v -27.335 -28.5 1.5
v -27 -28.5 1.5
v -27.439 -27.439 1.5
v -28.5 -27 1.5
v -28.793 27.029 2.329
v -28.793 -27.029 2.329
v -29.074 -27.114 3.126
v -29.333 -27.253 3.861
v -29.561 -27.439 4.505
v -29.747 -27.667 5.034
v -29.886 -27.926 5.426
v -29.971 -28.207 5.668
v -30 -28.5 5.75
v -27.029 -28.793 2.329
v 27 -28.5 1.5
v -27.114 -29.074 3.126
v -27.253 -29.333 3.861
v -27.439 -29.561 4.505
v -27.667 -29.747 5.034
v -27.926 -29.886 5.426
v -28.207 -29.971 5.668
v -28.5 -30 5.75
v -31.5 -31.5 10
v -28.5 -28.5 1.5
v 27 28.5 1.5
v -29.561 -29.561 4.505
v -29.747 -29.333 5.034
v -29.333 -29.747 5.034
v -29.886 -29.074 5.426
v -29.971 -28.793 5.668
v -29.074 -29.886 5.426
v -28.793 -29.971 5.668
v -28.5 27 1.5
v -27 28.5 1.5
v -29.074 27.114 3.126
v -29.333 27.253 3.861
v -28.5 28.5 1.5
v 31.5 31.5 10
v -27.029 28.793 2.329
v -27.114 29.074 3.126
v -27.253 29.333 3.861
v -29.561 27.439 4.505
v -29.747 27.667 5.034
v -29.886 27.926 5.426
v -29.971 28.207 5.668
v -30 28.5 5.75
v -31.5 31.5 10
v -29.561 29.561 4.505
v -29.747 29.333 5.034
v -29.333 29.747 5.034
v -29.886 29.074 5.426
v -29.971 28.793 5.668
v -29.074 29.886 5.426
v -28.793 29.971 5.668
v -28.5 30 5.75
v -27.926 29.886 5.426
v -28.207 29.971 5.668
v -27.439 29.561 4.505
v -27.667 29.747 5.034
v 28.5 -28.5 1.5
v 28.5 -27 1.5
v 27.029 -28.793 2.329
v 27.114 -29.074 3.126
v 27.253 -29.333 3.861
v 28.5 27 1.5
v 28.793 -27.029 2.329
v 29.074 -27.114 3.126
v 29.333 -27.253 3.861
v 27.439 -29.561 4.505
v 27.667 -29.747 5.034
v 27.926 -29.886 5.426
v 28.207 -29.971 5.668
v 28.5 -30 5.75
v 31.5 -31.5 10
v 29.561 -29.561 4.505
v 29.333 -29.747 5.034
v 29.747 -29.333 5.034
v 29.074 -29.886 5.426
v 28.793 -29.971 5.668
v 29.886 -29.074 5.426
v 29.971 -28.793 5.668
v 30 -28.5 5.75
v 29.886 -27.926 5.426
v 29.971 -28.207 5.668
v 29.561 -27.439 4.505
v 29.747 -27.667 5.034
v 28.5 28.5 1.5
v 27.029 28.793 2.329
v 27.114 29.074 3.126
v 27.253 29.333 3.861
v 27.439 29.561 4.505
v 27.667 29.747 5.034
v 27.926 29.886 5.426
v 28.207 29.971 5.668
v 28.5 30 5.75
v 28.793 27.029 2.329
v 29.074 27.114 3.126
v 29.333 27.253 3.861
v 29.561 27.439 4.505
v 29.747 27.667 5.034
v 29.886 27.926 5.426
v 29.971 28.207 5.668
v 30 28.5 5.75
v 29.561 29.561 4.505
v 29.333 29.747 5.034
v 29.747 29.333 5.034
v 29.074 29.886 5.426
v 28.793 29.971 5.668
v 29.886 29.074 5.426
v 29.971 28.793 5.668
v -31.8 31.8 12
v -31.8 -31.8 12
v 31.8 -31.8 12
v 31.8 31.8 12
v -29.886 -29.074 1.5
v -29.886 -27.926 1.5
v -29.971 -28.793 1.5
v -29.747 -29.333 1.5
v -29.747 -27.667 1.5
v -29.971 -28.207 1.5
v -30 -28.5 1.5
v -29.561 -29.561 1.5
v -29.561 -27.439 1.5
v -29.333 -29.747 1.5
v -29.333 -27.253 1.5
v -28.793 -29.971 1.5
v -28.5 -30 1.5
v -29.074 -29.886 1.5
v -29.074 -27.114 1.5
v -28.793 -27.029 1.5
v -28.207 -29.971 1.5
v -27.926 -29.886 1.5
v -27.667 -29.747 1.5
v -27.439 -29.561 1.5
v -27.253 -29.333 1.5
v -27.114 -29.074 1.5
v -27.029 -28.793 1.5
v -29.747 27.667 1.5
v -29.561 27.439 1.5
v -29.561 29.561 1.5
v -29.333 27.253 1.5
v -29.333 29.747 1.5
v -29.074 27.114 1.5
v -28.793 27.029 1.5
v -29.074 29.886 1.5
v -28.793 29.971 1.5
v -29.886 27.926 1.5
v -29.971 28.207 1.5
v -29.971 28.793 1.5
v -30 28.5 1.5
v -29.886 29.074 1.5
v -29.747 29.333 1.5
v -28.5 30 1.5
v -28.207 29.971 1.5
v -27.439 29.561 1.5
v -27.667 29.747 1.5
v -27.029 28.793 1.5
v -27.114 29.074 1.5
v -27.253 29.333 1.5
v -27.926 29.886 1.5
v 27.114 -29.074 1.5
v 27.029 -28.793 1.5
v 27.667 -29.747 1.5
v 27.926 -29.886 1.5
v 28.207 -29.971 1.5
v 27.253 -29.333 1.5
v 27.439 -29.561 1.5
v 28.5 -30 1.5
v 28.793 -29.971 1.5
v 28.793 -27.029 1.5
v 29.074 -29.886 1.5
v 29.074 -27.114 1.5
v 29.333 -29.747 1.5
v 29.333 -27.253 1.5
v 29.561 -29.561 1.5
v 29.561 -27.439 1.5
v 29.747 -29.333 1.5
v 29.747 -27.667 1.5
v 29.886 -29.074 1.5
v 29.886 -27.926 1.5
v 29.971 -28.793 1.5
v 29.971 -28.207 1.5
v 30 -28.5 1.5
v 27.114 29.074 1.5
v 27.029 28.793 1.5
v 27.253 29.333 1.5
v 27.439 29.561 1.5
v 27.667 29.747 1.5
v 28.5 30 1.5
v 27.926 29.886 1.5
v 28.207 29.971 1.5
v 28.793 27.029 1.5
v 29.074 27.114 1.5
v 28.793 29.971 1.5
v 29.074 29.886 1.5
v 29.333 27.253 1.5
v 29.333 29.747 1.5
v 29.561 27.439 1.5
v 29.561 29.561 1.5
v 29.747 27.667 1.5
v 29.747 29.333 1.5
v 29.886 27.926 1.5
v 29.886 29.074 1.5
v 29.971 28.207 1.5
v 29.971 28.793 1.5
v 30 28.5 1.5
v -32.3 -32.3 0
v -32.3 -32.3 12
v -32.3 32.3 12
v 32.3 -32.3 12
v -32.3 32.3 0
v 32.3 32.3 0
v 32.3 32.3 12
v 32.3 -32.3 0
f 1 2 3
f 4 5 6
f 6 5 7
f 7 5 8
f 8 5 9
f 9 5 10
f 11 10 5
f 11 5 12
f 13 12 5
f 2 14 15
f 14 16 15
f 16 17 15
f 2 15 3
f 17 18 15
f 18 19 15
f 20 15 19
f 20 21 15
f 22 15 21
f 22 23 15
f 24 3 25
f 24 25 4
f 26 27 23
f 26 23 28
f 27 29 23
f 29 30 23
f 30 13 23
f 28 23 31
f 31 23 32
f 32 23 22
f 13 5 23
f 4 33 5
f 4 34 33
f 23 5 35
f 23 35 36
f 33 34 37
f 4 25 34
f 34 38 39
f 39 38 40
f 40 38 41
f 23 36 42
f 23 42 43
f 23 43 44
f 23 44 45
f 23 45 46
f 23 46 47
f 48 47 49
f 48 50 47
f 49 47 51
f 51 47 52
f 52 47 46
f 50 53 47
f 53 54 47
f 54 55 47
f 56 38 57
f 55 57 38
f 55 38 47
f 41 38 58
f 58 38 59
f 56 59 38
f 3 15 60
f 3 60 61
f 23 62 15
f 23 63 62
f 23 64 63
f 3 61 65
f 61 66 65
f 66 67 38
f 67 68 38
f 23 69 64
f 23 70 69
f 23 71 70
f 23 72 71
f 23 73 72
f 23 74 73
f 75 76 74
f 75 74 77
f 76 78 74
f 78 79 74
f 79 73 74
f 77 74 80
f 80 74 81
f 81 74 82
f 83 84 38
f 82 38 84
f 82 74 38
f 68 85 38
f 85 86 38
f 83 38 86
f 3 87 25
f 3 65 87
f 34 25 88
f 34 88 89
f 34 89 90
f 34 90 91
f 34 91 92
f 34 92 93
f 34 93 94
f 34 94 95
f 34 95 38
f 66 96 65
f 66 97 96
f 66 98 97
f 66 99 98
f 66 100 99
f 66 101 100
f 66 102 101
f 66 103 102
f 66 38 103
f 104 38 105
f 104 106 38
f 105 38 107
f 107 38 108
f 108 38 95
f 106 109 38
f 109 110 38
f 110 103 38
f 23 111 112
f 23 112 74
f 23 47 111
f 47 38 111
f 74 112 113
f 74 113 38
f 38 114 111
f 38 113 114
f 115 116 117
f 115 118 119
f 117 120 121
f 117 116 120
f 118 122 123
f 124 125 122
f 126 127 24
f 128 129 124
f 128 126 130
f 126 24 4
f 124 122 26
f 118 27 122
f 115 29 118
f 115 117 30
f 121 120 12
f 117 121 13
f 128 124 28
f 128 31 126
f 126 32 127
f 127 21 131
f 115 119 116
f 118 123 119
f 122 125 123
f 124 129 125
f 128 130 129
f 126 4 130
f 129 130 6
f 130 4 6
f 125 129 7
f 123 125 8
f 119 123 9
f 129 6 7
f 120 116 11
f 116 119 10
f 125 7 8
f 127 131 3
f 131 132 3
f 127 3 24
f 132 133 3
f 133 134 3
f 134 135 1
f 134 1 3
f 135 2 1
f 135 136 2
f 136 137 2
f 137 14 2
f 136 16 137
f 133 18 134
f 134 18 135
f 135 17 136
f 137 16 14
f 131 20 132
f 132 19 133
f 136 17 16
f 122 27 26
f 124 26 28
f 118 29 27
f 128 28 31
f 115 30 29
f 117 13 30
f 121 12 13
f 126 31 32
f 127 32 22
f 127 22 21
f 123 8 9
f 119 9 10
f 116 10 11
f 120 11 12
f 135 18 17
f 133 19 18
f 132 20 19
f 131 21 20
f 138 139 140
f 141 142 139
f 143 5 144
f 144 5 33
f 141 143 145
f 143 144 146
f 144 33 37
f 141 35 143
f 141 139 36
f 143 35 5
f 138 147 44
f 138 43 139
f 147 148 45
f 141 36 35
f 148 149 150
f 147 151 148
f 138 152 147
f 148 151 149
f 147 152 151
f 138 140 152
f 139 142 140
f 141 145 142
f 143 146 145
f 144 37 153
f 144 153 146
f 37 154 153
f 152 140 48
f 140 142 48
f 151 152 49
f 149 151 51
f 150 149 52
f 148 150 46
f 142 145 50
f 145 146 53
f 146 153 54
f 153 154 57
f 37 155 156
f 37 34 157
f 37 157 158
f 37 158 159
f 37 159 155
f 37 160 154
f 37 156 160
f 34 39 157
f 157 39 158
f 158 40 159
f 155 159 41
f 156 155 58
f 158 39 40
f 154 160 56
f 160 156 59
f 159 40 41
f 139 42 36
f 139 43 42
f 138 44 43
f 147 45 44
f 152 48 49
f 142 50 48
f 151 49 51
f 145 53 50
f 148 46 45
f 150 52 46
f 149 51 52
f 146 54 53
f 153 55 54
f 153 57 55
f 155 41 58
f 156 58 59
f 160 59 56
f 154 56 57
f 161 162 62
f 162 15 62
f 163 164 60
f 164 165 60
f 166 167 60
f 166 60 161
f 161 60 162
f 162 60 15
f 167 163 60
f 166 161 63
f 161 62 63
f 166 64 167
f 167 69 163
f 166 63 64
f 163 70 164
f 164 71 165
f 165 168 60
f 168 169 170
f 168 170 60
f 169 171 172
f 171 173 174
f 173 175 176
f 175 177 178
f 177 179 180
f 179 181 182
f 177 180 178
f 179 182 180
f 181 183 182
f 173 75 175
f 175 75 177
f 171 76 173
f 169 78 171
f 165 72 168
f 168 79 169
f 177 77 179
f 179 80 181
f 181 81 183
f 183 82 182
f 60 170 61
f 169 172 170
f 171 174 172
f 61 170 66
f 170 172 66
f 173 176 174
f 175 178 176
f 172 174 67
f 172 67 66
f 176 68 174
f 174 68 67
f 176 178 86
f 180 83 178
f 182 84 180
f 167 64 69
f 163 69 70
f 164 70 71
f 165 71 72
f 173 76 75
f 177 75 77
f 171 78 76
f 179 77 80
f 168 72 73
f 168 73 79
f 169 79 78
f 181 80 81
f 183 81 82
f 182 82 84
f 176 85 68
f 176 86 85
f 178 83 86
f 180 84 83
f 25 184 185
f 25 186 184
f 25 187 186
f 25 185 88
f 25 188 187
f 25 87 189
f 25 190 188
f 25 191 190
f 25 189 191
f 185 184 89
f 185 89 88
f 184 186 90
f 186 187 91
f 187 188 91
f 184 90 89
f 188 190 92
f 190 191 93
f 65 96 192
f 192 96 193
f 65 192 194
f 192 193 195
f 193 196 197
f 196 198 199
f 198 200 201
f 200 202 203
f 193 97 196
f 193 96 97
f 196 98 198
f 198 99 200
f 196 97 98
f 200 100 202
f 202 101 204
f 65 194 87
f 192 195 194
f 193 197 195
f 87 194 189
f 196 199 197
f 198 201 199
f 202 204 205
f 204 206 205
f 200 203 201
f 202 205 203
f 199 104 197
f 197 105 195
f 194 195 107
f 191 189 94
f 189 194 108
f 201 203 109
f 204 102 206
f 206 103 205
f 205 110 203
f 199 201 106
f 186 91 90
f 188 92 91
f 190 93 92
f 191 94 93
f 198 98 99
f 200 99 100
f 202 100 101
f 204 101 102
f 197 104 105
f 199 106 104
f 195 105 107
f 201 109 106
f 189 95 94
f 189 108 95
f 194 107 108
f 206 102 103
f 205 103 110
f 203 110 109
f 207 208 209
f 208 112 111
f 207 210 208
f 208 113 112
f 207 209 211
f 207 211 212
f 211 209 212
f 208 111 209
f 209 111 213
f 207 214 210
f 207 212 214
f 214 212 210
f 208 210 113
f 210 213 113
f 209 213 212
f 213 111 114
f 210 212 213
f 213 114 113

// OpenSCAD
// Centering adapter for MindCuber
// Insert for the MindCuber cube tray that keeps the smaller
// GAN 356 RS 3x3 (56 mm) speed cube centered and held firmly in position.
// All dimensions in mm

outer        = 64.6;  // slightly smaller than 65 so it fits into the tray
height       = 12;
floor_thick  = 1.5;   // 0 = no floor
inner_bottom = 57;    // cube 56 + 1 mm clearance
inner_top    = 63;    // funnel opening
chamfer      = 2;     // additional lead-in chamfer at the top
corner_relief = 3;    // relief for the cube corners

$fn = 32;

difference() {
    // Base body
    translate([-outer/2, -outer/2, 0])
        cube([outer, outer, height]);

    // Funnel
    hull() {
        translate([-inner_bottom/2, -inner_bottom/2, floor_thick])
            cube([inner_bottom, inner_bottom, 0.01]);
        translate([-inner_top/2, -inner_top/2, height - chamfer])
            cube([inner_top, inner_top, 0.01]);
    }

    // Lead-in chamfer at the top
    hull() {
        translate([-inner_top/2, -inner_top/2, height - chamfer])
            cube([inner_top, inner_top, 0.01]);
        translate([-(outer-1)/2, -(outer-1)/2, height])
            cube([outer-1, outer-1, 0.01]);
    }

    // Corner reliefs so the cube corners do not get caught
    for (x = [-1, 1], y = [-1, 1])
        translate([x*inner_bottom/2, y*inner_bottom/2, floor_thick])
            cylinder(r = corner_relief/2, h = height);
}
